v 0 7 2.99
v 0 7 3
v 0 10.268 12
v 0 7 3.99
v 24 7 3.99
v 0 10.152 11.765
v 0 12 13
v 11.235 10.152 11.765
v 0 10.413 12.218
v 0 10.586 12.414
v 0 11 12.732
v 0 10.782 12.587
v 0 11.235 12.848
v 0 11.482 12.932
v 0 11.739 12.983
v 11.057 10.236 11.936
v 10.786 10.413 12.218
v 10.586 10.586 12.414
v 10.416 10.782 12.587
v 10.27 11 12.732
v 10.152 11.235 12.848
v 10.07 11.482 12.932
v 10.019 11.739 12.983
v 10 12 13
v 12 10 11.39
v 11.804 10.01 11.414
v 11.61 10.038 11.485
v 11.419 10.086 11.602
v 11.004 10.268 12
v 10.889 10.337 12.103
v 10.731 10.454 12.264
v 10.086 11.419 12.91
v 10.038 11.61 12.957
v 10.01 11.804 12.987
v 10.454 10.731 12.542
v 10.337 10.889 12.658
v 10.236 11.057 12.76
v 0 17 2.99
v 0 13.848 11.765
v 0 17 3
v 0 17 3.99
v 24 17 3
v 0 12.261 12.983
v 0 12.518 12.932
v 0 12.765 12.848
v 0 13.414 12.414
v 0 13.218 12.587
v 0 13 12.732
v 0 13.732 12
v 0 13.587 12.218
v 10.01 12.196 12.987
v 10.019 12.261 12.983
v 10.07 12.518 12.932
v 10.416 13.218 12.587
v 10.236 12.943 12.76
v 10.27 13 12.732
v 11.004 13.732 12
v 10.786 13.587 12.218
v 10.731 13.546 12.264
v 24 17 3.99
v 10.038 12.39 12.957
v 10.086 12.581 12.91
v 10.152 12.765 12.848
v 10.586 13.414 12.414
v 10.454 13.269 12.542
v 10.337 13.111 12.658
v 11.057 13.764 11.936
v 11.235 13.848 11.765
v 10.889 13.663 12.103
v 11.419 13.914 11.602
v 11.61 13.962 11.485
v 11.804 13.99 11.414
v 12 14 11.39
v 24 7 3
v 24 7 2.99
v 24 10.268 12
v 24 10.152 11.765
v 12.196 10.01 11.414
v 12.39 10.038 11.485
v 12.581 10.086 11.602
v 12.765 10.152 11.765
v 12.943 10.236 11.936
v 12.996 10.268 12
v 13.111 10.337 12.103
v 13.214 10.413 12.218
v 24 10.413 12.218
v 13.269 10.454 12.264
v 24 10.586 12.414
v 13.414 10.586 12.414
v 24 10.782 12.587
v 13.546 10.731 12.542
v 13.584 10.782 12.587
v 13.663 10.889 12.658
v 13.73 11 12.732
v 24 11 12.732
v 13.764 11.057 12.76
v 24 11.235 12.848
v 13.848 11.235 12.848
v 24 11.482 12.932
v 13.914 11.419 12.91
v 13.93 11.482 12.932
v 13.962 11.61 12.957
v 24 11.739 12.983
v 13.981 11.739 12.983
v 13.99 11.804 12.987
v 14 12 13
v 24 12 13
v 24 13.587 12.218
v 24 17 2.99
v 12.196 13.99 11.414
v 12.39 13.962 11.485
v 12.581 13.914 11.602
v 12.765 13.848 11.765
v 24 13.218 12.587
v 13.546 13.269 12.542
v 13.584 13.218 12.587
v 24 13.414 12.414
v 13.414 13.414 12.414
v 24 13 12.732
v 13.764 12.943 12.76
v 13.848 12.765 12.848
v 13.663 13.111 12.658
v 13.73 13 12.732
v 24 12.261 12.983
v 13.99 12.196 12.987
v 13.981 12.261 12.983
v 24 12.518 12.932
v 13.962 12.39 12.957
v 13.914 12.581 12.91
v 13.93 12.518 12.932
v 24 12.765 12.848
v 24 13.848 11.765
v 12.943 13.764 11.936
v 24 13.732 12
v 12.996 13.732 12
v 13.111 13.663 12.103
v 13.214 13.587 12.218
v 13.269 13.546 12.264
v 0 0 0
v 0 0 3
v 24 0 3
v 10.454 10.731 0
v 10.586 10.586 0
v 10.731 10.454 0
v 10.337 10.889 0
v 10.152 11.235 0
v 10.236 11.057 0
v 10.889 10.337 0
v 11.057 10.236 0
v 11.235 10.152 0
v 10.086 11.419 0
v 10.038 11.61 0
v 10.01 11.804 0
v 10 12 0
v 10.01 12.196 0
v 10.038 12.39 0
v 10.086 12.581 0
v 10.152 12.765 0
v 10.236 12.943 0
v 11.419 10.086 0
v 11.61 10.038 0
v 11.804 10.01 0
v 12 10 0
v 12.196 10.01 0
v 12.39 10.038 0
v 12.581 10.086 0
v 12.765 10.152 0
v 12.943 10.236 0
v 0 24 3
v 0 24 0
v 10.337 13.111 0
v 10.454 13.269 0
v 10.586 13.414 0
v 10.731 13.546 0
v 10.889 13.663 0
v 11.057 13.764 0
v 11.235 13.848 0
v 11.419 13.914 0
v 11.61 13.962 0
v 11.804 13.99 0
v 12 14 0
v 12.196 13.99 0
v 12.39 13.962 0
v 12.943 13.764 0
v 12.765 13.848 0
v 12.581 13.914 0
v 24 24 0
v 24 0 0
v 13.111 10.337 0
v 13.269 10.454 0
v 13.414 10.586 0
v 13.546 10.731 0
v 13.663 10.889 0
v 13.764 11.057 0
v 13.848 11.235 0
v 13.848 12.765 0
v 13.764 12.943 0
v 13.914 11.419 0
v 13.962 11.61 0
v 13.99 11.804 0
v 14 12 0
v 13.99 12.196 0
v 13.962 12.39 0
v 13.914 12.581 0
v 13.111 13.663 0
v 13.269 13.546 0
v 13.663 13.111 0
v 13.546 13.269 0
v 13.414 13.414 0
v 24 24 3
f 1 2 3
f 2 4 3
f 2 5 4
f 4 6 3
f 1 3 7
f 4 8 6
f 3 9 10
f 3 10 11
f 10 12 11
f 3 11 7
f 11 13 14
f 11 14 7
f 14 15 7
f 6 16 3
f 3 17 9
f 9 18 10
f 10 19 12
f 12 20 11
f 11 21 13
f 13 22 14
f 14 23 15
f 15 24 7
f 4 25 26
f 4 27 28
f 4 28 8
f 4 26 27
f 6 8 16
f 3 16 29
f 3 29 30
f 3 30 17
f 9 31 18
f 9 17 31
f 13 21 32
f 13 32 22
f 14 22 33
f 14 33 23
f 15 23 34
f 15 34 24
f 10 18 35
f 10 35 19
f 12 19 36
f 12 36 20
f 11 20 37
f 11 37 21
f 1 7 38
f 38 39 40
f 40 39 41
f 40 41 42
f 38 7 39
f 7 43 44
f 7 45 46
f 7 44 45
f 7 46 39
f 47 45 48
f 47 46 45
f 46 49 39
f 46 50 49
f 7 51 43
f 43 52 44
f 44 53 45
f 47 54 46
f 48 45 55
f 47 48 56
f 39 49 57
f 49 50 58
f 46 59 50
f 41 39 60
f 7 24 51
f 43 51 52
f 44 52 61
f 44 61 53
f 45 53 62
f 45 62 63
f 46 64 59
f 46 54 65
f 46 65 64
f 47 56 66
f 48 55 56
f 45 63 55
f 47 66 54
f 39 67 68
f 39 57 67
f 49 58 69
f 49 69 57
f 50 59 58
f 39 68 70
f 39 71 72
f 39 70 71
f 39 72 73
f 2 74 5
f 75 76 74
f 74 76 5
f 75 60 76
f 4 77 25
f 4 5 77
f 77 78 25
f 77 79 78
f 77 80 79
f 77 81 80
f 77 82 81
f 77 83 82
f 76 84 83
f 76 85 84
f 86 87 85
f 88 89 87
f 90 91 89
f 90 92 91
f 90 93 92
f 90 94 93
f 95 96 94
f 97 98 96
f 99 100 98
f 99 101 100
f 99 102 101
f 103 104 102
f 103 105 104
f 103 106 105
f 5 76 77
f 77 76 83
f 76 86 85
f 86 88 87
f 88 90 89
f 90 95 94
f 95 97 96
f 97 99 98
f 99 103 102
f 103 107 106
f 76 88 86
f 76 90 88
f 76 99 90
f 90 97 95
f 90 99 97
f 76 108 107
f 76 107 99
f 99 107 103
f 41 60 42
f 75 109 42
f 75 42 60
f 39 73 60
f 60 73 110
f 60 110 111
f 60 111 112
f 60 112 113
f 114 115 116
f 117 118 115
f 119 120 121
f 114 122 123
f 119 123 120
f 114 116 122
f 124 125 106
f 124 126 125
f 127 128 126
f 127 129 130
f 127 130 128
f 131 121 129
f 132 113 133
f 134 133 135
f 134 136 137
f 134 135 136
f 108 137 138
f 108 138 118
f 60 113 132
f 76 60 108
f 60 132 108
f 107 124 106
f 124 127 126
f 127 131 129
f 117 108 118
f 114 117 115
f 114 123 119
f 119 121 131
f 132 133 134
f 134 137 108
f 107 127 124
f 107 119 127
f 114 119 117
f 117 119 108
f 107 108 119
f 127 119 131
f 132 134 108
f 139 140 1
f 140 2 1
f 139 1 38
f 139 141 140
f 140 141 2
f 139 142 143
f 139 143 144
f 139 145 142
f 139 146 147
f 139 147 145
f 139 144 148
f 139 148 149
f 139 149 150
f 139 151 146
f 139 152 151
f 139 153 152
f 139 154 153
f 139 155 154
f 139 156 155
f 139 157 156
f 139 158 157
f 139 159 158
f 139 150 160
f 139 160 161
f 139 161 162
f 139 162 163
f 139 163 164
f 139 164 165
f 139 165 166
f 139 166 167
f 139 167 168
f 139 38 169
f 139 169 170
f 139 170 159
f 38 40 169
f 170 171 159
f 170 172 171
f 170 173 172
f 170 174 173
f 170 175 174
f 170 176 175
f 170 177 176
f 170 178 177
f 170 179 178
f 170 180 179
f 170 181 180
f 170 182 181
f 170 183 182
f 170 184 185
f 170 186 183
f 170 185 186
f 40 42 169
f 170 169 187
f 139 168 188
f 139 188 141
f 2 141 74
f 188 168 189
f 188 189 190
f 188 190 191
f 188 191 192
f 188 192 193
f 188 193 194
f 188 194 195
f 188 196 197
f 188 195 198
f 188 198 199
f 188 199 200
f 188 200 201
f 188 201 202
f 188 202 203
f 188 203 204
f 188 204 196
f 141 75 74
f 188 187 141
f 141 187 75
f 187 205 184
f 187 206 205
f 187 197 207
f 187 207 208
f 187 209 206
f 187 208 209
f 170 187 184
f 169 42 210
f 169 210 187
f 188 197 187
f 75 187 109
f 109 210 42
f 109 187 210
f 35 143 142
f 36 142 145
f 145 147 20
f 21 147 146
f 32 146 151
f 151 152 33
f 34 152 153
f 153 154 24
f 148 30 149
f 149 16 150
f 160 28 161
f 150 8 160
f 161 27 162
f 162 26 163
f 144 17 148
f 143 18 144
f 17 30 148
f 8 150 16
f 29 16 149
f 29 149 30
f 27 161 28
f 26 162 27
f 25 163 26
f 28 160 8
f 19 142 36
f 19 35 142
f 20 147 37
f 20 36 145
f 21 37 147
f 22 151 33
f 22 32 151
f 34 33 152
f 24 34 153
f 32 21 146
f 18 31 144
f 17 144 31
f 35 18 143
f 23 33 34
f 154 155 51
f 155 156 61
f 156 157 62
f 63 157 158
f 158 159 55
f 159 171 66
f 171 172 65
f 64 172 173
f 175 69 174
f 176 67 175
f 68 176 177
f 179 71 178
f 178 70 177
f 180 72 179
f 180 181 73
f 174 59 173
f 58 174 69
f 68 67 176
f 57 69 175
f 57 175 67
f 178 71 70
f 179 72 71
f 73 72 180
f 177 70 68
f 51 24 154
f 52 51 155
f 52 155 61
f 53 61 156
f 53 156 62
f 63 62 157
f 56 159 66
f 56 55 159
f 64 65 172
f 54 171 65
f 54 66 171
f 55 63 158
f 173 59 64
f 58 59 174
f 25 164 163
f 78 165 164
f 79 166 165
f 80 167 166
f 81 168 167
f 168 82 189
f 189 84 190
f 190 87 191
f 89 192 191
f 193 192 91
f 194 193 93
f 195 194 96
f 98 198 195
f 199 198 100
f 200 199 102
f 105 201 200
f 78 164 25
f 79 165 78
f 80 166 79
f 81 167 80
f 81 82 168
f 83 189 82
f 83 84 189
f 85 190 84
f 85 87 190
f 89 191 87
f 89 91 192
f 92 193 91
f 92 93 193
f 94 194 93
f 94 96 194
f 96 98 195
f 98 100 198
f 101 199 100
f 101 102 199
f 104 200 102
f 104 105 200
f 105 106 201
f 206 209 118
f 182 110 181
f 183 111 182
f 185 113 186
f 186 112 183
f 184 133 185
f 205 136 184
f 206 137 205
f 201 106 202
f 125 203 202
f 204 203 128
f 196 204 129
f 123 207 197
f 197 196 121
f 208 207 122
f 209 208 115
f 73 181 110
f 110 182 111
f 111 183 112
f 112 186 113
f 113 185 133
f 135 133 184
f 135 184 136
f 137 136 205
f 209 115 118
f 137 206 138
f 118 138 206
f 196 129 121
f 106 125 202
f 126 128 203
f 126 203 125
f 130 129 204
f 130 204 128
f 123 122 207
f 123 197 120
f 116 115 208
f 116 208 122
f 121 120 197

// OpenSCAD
// Toccata stage-0 C03c - 누름 코 (R2 날 + 손가락 받침 24×24, 가운데 Ø4 다이얼 구멍) (generated by make_stage0.py; print orientation, z = build direction)
$fn = 64;
difference(){
union(){
translate([0.0000,0.0000,0.0000]) cube([24.0000,24.0000,3.0000]);
hull(){translate([0,12,11]) rotate([0,90,0]) cylinder(h=24, r=2.0, $fn=48); translate([0,7,2.99]) cube([24,10,1]);}
}
translate([12.0000,12.0000,-1.0000]) cylinder(h=21.0000, d=4.0000, $fn=64);
}
